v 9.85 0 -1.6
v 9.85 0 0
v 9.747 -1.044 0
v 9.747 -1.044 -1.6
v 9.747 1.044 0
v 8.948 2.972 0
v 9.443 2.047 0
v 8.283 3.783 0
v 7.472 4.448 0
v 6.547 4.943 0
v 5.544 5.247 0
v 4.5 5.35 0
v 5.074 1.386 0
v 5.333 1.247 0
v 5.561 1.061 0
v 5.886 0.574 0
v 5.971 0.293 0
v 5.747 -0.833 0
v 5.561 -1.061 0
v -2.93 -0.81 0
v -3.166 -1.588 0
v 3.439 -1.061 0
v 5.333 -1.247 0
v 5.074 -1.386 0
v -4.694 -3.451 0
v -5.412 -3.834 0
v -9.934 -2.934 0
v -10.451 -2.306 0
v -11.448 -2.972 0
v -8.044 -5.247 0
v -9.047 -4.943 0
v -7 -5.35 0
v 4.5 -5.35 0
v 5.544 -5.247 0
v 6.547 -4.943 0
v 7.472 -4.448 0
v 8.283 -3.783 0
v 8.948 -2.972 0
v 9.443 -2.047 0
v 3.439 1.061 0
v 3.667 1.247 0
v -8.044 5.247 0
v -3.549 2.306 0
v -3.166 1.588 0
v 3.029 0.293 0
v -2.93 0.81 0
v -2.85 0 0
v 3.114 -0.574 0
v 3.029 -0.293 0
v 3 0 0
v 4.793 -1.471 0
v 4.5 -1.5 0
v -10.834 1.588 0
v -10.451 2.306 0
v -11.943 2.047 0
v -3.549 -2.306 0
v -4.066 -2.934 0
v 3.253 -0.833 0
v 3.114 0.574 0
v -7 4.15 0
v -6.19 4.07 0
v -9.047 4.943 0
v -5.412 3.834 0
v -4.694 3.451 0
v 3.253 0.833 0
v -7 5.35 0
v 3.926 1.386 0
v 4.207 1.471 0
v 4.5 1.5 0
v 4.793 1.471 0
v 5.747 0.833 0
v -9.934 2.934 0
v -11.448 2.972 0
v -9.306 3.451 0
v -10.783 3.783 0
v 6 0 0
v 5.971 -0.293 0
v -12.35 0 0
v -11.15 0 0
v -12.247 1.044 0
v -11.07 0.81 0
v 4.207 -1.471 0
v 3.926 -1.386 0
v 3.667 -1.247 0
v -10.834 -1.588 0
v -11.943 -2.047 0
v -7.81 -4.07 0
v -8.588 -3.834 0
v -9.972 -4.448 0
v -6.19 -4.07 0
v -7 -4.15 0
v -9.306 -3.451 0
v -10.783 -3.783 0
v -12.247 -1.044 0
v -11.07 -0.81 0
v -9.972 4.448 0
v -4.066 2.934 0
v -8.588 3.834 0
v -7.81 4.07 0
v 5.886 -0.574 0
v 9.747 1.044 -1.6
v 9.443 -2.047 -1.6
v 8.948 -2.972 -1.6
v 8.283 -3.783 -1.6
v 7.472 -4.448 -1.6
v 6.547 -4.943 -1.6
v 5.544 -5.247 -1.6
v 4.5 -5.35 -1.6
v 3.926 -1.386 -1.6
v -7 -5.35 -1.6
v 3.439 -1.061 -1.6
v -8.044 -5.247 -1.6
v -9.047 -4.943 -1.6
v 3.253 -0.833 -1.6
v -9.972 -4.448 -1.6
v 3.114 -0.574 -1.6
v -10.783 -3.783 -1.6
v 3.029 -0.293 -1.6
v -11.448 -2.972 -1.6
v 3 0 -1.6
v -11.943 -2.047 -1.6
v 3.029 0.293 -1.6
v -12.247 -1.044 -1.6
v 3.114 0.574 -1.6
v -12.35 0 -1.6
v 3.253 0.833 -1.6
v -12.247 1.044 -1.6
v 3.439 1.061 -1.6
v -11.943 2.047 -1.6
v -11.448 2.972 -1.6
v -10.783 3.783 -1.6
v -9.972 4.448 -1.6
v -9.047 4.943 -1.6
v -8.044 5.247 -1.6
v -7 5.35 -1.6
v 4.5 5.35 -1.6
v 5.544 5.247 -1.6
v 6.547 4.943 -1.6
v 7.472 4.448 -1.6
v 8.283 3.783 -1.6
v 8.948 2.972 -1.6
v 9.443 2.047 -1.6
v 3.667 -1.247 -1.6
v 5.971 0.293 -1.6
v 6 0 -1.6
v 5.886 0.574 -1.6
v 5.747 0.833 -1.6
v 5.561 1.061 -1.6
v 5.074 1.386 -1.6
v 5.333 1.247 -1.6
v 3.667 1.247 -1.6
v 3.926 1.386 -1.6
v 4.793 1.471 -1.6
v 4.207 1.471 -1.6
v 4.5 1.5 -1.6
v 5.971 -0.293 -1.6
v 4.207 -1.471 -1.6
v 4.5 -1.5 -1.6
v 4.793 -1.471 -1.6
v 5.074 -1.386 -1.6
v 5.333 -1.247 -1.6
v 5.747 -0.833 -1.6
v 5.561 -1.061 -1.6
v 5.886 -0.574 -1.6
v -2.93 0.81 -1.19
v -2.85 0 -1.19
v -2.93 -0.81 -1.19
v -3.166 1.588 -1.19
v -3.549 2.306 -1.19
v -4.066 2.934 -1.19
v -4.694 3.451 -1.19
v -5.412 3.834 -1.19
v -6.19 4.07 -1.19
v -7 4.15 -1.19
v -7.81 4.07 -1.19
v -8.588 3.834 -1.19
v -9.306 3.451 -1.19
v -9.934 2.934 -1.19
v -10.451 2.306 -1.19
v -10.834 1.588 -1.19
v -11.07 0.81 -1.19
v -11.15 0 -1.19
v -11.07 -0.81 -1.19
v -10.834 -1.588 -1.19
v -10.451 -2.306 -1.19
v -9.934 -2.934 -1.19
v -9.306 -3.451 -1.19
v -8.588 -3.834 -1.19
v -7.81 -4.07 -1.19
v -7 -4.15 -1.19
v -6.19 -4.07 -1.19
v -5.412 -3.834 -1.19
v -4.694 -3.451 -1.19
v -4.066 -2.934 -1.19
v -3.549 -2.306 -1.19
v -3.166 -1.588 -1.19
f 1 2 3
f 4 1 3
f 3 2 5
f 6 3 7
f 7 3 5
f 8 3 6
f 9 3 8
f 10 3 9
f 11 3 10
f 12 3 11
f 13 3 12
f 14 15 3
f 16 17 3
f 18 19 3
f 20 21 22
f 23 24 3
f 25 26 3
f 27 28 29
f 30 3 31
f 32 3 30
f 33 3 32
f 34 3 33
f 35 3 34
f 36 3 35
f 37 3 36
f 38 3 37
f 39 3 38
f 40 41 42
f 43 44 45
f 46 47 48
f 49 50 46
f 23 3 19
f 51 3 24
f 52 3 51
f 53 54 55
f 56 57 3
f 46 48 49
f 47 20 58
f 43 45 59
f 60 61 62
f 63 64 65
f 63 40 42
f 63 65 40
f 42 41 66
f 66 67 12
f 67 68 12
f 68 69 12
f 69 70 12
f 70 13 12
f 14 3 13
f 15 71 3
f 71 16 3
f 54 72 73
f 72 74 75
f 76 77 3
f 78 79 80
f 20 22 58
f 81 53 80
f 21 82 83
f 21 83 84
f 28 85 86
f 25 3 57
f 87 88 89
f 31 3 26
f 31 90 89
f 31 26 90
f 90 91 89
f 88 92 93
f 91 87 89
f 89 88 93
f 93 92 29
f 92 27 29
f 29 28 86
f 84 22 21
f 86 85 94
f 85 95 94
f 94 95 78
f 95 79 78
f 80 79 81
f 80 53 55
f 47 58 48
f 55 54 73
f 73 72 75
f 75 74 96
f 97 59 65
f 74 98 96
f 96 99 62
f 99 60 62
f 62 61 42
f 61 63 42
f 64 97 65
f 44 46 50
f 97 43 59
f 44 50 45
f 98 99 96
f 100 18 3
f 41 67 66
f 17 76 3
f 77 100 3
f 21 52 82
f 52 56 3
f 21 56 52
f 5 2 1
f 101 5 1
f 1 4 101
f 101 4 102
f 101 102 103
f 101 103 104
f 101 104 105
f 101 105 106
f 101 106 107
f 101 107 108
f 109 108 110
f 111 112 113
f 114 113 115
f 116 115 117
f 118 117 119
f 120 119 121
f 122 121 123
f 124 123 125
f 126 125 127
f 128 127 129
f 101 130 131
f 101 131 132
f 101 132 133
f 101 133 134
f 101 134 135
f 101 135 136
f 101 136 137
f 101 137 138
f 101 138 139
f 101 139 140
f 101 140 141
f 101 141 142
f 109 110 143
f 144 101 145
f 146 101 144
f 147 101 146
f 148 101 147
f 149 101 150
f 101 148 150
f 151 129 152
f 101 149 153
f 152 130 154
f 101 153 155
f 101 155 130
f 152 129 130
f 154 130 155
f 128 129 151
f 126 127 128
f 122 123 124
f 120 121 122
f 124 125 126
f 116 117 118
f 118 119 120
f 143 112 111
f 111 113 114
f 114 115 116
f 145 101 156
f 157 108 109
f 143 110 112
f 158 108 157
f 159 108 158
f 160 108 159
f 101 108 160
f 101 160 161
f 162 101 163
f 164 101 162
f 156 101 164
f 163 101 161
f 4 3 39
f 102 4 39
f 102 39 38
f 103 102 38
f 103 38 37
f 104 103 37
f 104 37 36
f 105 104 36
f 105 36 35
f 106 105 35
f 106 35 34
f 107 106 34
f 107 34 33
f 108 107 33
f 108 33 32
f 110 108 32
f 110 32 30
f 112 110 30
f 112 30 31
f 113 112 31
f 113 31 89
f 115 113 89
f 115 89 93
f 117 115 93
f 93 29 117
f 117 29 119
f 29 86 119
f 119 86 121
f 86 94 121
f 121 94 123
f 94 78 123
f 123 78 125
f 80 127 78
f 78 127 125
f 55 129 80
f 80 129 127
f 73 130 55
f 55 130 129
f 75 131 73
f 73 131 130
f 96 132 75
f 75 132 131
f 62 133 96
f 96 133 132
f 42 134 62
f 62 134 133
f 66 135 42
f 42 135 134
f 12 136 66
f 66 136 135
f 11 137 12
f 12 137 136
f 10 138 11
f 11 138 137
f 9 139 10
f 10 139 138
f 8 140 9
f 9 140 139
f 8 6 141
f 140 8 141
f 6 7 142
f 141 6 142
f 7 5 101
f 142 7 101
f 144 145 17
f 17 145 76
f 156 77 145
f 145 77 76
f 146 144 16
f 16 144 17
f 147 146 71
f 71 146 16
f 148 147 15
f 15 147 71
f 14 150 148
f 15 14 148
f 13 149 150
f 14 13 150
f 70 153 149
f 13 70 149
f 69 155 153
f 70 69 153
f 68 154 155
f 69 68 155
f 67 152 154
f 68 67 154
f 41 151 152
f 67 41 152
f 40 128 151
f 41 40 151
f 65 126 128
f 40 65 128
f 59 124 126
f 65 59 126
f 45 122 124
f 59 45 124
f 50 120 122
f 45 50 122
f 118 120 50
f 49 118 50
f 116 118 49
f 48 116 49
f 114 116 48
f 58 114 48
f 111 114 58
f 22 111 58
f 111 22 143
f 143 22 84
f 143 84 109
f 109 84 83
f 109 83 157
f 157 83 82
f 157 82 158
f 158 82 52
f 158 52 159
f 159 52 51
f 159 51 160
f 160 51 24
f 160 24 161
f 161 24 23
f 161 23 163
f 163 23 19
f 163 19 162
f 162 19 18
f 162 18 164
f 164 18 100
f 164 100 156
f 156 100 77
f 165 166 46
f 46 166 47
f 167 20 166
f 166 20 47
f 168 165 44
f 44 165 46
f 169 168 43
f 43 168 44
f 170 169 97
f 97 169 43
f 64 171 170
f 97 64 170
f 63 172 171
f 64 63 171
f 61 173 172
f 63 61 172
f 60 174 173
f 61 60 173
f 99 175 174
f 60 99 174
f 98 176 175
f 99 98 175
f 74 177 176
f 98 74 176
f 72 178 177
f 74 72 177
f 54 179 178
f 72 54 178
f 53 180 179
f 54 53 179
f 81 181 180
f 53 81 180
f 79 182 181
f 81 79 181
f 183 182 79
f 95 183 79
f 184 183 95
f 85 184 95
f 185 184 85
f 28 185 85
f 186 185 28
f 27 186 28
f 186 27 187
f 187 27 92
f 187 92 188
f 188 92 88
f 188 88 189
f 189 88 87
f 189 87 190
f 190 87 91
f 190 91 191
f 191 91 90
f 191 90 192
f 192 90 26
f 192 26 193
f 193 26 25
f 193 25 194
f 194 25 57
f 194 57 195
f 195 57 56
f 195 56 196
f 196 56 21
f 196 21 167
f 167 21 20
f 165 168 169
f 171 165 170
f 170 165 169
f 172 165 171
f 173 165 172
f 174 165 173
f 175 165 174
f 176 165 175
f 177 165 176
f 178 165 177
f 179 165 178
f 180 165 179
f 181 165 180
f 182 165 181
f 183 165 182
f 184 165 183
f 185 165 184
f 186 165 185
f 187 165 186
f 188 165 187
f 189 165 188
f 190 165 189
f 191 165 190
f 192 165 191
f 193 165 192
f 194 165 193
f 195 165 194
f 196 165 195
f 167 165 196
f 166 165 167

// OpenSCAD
// a flat bracket to hold a cylindrical magnet
// the magnet is on the INSIDE of the bracket, which
// means it's not visible from the direction the bracket would normally be looked at from

// there are optional tiny retaining tabs

mag_diam=8.3;
mag_thick=1.2;
mag_ctr=7;
skin=0.4;
wall=1.2;
screw=3;
screw_ctr=4.5;
tabs=false;

// total width of the bracket
width=mag_diam+2*wall;

epsilon=1e-2;
$fn=32;

// flip part on its back for easy FDM printing
rotate(a=[0, 180, 0]){
    difference(){
        hull(){
            translate([mag_ctr, 0, 0]) cylinder(d=width, h=mag_thick+skin, center=false);
            translate([-screw_ctr, 0, 0]) cylinder(d=width, h=mag_thick+skin, center=false);
        }

        // magnet hole
        translate([mag_ctr, 0, -epsilon]) cylinder(d=mag_diam, h=mag_thick, center=false);

        // screw hole
        translate([-screw_ctr, 0, -epsilon]) cylinder(d=screw, h=(mag_thick+skin+1), center=false);
    }

    if(tabs){
        // retaining tabs
        for(y=[mag_diam/2, -mag_diam/2]){
            translate([mag_ctr, y, 0]) {
                translate([0, 0, -0.2]) sphere(d=0.8);
            }
        }
    }
    
}
